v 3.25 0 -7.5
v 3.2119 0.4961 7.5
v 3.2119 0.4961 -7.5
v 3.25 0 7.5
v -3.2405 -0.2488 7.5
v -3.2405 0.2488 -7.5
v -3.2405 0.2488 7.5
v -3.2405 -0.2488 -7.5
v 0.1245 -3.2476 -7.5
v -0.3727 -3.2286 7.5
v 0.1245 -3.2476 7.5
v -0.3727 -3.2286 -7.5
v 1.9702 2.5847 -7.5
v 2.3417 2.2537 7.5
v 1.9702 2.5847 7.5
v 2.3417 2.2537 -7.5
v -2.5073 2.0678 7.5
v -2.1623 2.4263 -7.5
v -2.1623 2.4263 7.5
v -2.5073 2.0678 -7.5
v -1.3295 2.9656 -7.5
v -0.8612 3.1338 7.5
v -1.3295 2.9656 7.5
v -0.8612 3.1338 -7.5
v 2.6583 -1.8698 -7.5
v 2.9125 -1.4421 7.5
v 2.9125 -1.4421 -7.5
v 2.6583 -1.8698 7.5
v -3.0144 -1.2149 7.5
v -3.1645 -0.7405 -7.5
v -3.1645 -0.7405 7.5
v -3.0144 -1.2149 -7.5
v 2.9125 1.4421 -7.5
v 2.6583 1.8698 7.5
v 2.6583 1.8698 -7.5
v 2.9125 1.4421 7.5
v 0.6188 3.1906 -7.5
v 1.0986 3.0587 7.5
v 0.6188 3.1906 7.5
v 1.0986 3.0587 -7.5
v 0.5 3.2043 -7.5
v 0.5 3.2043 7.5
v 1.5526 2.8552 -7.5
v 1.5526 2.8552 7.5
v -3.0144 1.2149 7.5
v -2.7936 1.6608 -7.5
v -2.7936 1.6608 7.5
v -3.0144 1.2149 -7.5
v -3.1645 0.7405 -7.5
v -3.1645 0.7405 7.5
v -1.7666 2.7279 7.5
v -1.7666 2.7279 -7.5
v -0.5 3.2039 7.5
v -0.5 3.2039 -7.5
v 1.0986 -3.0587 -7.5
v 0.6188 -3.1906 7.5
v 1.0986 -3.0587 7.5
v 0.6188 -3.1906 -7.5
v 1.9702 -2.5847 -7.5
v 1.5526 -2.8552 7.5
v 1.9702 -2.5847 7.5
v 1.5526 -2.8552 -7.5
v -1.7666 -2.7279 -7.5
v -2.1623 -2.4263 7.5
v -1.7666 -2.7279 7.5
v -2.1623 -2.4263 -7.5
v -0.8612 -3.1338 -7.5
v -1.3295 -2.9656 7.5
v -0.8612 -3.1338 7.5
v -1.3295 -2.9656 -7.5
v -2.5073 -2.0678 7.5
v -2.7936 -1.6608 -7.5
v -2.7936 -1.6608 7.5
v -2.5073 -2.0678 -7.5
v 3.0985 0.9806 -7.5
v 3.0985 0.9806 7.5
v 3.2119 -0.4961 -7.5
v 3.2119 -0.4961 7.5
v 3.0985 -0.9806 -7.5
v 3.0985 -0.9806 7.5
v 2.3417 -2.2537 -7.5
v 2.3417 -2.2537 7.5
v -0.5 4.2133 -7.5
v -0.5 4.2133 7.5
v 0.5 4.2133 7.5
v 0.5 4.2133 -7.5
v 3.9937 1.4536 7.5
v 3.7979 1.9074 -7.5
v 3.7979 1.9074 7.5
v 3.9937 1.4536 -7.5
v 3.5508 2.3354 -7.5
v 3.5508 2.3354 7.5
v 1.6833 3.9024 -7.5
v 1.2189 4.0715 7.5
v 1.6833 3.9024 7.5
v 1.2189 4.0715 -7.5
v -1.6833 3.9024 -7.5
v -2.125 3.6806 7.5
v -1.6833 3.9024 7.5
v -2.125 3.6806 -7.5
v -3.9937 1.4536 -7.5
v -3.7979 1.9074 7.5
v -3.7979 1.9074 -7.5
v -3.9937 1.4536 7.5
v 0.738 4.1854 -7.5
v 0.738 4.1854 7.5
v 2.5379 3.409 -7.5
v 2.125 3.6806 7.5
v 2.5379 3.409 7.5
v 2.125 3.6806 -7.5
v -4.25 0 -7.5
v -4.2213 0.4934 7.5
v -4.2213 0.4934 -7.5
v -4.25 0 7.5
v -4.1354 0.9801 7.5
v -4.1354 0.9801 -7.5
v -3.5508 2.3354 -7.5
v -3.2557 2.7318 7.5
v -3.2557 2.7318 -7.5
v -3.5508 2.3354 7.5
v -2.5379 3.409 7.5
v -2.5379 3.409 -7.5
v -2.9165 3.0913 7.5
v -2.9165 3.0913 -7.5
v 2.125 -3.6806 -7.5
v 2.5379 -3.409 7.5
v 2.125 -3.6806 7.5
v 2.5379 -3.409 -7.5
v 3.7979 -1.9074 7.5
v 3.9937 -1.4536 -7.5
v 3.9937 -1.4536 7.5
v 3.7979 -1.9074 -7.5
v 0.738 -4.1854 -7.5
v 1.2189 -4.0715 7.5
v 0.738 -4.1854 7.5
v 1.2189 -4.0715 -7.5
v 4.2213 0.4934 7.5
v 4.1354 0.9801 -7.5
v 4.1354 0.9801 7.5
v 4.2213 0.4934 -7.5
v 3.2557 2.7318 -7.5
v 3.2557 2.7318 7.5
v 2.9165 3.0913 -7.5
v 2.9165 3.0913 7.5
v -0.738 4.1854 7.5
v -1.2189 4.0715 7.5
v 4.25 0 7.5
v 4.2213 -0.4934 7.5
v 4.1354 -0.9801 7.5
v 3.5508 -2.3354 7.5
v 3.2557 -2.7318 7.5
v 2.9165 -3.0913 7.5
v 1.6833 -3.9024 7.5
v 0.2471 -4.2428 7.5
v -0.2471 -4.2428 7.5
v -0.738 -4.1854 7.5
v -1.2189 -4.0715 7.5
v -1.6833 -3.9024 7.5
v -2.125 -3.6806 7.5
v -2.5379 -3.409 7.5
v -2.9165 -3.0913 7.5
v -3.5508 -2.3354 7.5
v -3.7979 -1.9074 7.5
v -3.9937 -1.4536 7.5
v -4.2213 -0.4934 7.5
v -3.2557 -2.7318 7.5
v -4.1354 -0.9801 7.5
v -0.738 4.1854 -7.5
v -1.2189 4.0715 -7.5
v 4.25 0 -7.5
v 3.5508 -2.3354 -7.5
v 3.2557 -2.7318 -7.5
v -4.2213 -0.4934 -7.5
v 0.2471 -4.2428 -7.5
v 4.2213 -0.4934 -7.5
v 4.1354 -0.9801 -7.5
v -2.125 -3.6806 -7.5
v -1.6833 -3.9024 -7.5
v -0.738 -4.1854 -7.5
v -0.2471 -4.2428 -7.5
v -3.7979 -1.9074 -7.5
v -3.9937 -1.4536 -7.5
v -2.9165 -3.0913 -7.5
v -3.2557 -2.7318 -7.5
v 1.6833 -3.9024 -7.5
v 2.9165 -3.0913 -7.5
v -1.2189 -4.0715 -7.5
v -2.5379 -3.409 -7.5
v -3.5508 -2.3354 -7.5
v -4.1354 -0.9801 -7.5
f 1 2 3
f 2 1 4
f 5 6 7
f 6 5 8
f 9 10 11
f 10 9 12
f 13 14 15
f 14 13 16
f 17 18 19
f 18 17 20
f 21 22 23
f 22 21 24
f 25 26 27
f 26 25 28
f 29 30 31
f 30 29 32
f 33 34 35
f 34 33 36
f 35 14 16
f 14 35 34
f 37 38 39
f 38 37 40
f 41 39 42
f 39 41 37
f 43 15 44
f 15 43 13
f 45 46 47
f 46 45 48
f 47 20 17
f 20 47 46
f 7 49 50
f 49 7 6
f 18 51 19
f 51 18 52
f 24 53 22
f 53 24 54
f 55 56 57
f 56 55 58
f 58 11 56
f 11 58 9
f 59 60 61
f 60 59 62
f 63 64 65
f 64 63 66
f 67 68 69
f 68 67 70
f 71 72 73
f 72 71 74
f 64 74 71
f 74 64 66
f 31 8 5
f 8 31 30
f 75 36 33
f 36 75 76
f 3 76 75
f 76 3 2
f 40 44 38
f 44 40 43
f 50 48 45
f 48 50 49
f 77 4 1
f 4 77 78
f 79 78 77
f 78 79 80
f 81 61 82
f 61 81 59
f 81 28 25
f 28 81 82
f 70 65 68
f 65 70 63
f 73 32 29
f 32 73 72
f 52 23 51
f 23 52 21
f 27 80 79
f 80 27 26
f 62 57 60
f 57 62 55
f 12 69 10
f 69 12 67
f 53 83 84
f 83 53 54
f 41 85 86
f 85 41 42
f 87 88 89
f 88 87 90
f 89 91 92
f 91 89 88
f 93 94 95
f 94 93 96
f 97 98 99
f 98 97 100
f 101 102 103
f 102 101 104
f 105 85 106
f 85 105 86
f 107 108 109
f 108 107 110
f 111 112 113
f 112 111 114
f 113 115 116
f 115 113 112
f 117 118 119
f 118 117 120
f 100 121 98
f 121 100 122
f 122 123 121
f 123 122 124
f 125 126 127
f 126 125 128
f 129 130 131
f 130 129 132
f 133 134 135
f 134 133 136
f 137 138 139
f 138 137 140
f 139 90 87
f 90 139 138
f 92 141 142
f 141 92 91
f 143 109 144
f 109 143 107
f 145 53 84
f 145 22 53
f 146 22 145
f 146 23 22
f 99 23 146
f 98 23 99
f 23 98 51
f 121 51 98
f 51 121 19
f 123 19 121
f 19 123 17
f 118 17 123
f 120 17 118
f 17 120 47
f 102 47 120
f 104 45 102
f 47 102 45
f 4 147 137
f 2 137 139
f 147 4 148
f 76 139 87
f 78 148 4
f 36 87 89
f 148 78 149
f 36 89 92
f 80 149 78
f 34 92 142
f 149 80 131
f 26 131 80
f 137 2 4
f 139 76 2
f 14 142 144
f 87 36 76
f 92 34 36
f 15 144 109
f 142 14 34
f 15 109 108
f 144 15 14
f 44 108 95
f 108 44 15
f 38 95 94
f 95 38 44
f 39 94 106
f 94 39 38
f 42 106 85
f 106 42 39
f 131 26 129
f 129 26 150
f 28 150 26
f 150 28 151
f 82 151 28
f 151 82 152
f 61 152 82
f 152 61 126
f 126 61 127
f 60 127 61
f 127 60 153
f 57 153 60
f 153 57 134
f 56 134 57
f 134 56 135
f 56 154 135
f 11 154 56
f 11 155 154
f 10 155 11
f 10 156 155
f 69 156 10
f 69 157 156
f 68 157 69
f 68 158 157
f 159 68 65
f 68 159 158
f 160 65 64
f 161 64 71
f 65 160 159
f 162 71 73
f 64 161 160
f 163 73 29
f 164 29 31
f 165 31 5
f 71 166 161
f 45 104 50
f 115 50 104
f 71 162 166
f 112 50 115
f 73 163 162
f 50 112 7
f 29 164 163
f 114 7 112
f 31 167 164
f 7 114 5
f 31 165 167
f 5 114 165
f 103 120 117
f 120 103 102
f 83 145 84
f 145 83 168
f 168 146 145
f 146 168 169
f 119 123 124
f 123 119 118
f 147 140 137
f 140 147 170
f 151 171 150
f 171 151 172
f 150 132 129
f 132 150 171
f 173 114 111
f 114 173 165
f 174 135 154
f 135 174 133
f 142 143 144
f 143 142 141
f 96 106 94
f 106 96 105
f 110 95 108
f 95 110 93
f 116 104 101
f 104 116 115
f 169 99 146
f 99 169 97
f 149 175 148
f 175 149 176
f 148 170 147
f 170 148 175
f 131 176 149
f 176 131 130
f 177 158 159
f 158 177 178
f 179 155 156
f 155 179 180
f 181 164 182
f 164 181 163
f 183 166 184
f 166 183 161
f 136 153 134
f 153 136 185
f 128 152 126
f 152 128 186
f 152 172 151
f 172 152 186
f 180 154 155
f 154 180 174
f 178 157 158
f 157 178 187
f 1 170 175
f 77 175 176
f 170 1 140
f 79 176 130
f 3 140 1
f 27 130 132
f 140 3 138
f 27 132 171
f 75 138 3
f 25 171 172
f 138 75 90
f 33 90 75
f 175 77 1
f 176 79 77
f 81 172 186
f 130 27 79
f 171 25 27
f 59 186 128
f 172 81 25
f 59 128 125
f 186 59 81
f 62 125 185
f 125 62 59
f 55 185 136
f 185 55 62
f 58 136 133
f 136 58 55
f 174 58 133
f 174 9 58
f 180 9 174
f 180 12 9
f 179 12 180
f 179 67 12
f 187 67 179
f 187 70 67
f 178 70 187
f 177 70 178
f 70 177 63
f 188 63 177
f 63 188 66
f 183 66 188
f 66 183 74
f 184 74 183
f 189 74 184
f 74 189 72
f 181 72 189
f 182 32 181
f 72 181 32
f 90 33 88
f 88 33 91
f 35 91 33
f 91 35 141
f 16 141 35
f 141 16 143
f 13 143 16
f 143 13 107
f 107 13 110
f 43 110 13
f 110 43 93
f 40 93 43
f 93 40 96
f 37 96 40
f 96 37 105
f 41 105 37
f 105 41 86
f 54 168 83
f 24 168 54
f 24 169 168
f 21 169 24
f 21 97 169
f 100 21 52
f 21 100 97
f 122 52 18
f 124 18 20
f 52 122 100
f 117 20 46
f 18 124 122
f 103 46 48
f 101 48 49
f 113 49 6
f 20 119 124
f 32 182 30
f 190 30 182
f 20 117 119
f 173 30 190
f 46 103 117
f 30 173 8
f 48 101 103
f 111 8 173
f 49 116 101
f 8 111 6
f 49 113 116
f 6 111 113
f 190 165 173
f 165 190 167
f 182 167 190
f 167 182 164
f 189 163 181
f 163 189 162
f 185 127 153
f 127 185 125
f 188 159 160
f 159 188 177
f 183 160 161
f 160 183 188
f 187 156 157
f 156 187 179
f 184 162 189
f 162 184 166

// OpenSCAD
/////////////////////////////////////////////////////////////////////////////////
// LED illuminator to hide the LED from the receiver diode. 
//
// Author:              Maximilian Stiefel
// Last modification:   22.06.2017
/////////////////////////////////////////////////////////////////////////////////

/////////////////////////////////////////////////////////////////////////////////
// Includes
/////////////////////////////////////////////////////////////////////////////////

/////////////////////////////////////////////////////////////////////////////////
// Vars
/////////////////////////////////////////////////////////////////////////////////
$fa = 0.5; // minimum facet angle is now 0.5
$fs = 0.5; // minimum facet size is now 0.5 mm

holder_height = 15;
holder_diameter = 8.5;
holder_hole_diameter = 6.5; // LED with 5 mm diameter should fit in
holder_slot_width = 1;
/////////////////////////////////////////////////////////////////////////////////
// Action
/////////////////////////////////////////////////////////////////////////////////
difference()
{
	cylinder(h = holder_height, r = holder_diameter/2, center = true);
	union()
	{
		translate([0, 0, 0])
		cylinder(h = holder_height + 2, r = holder_hole_diameter/2, center = true);
		translate([0, holder_diameter/2, 0])
		cube([holder_slot_width, 2*(holder_diameter-holder_hole_diameter), holder_height + 2], center = true);
	}
}
